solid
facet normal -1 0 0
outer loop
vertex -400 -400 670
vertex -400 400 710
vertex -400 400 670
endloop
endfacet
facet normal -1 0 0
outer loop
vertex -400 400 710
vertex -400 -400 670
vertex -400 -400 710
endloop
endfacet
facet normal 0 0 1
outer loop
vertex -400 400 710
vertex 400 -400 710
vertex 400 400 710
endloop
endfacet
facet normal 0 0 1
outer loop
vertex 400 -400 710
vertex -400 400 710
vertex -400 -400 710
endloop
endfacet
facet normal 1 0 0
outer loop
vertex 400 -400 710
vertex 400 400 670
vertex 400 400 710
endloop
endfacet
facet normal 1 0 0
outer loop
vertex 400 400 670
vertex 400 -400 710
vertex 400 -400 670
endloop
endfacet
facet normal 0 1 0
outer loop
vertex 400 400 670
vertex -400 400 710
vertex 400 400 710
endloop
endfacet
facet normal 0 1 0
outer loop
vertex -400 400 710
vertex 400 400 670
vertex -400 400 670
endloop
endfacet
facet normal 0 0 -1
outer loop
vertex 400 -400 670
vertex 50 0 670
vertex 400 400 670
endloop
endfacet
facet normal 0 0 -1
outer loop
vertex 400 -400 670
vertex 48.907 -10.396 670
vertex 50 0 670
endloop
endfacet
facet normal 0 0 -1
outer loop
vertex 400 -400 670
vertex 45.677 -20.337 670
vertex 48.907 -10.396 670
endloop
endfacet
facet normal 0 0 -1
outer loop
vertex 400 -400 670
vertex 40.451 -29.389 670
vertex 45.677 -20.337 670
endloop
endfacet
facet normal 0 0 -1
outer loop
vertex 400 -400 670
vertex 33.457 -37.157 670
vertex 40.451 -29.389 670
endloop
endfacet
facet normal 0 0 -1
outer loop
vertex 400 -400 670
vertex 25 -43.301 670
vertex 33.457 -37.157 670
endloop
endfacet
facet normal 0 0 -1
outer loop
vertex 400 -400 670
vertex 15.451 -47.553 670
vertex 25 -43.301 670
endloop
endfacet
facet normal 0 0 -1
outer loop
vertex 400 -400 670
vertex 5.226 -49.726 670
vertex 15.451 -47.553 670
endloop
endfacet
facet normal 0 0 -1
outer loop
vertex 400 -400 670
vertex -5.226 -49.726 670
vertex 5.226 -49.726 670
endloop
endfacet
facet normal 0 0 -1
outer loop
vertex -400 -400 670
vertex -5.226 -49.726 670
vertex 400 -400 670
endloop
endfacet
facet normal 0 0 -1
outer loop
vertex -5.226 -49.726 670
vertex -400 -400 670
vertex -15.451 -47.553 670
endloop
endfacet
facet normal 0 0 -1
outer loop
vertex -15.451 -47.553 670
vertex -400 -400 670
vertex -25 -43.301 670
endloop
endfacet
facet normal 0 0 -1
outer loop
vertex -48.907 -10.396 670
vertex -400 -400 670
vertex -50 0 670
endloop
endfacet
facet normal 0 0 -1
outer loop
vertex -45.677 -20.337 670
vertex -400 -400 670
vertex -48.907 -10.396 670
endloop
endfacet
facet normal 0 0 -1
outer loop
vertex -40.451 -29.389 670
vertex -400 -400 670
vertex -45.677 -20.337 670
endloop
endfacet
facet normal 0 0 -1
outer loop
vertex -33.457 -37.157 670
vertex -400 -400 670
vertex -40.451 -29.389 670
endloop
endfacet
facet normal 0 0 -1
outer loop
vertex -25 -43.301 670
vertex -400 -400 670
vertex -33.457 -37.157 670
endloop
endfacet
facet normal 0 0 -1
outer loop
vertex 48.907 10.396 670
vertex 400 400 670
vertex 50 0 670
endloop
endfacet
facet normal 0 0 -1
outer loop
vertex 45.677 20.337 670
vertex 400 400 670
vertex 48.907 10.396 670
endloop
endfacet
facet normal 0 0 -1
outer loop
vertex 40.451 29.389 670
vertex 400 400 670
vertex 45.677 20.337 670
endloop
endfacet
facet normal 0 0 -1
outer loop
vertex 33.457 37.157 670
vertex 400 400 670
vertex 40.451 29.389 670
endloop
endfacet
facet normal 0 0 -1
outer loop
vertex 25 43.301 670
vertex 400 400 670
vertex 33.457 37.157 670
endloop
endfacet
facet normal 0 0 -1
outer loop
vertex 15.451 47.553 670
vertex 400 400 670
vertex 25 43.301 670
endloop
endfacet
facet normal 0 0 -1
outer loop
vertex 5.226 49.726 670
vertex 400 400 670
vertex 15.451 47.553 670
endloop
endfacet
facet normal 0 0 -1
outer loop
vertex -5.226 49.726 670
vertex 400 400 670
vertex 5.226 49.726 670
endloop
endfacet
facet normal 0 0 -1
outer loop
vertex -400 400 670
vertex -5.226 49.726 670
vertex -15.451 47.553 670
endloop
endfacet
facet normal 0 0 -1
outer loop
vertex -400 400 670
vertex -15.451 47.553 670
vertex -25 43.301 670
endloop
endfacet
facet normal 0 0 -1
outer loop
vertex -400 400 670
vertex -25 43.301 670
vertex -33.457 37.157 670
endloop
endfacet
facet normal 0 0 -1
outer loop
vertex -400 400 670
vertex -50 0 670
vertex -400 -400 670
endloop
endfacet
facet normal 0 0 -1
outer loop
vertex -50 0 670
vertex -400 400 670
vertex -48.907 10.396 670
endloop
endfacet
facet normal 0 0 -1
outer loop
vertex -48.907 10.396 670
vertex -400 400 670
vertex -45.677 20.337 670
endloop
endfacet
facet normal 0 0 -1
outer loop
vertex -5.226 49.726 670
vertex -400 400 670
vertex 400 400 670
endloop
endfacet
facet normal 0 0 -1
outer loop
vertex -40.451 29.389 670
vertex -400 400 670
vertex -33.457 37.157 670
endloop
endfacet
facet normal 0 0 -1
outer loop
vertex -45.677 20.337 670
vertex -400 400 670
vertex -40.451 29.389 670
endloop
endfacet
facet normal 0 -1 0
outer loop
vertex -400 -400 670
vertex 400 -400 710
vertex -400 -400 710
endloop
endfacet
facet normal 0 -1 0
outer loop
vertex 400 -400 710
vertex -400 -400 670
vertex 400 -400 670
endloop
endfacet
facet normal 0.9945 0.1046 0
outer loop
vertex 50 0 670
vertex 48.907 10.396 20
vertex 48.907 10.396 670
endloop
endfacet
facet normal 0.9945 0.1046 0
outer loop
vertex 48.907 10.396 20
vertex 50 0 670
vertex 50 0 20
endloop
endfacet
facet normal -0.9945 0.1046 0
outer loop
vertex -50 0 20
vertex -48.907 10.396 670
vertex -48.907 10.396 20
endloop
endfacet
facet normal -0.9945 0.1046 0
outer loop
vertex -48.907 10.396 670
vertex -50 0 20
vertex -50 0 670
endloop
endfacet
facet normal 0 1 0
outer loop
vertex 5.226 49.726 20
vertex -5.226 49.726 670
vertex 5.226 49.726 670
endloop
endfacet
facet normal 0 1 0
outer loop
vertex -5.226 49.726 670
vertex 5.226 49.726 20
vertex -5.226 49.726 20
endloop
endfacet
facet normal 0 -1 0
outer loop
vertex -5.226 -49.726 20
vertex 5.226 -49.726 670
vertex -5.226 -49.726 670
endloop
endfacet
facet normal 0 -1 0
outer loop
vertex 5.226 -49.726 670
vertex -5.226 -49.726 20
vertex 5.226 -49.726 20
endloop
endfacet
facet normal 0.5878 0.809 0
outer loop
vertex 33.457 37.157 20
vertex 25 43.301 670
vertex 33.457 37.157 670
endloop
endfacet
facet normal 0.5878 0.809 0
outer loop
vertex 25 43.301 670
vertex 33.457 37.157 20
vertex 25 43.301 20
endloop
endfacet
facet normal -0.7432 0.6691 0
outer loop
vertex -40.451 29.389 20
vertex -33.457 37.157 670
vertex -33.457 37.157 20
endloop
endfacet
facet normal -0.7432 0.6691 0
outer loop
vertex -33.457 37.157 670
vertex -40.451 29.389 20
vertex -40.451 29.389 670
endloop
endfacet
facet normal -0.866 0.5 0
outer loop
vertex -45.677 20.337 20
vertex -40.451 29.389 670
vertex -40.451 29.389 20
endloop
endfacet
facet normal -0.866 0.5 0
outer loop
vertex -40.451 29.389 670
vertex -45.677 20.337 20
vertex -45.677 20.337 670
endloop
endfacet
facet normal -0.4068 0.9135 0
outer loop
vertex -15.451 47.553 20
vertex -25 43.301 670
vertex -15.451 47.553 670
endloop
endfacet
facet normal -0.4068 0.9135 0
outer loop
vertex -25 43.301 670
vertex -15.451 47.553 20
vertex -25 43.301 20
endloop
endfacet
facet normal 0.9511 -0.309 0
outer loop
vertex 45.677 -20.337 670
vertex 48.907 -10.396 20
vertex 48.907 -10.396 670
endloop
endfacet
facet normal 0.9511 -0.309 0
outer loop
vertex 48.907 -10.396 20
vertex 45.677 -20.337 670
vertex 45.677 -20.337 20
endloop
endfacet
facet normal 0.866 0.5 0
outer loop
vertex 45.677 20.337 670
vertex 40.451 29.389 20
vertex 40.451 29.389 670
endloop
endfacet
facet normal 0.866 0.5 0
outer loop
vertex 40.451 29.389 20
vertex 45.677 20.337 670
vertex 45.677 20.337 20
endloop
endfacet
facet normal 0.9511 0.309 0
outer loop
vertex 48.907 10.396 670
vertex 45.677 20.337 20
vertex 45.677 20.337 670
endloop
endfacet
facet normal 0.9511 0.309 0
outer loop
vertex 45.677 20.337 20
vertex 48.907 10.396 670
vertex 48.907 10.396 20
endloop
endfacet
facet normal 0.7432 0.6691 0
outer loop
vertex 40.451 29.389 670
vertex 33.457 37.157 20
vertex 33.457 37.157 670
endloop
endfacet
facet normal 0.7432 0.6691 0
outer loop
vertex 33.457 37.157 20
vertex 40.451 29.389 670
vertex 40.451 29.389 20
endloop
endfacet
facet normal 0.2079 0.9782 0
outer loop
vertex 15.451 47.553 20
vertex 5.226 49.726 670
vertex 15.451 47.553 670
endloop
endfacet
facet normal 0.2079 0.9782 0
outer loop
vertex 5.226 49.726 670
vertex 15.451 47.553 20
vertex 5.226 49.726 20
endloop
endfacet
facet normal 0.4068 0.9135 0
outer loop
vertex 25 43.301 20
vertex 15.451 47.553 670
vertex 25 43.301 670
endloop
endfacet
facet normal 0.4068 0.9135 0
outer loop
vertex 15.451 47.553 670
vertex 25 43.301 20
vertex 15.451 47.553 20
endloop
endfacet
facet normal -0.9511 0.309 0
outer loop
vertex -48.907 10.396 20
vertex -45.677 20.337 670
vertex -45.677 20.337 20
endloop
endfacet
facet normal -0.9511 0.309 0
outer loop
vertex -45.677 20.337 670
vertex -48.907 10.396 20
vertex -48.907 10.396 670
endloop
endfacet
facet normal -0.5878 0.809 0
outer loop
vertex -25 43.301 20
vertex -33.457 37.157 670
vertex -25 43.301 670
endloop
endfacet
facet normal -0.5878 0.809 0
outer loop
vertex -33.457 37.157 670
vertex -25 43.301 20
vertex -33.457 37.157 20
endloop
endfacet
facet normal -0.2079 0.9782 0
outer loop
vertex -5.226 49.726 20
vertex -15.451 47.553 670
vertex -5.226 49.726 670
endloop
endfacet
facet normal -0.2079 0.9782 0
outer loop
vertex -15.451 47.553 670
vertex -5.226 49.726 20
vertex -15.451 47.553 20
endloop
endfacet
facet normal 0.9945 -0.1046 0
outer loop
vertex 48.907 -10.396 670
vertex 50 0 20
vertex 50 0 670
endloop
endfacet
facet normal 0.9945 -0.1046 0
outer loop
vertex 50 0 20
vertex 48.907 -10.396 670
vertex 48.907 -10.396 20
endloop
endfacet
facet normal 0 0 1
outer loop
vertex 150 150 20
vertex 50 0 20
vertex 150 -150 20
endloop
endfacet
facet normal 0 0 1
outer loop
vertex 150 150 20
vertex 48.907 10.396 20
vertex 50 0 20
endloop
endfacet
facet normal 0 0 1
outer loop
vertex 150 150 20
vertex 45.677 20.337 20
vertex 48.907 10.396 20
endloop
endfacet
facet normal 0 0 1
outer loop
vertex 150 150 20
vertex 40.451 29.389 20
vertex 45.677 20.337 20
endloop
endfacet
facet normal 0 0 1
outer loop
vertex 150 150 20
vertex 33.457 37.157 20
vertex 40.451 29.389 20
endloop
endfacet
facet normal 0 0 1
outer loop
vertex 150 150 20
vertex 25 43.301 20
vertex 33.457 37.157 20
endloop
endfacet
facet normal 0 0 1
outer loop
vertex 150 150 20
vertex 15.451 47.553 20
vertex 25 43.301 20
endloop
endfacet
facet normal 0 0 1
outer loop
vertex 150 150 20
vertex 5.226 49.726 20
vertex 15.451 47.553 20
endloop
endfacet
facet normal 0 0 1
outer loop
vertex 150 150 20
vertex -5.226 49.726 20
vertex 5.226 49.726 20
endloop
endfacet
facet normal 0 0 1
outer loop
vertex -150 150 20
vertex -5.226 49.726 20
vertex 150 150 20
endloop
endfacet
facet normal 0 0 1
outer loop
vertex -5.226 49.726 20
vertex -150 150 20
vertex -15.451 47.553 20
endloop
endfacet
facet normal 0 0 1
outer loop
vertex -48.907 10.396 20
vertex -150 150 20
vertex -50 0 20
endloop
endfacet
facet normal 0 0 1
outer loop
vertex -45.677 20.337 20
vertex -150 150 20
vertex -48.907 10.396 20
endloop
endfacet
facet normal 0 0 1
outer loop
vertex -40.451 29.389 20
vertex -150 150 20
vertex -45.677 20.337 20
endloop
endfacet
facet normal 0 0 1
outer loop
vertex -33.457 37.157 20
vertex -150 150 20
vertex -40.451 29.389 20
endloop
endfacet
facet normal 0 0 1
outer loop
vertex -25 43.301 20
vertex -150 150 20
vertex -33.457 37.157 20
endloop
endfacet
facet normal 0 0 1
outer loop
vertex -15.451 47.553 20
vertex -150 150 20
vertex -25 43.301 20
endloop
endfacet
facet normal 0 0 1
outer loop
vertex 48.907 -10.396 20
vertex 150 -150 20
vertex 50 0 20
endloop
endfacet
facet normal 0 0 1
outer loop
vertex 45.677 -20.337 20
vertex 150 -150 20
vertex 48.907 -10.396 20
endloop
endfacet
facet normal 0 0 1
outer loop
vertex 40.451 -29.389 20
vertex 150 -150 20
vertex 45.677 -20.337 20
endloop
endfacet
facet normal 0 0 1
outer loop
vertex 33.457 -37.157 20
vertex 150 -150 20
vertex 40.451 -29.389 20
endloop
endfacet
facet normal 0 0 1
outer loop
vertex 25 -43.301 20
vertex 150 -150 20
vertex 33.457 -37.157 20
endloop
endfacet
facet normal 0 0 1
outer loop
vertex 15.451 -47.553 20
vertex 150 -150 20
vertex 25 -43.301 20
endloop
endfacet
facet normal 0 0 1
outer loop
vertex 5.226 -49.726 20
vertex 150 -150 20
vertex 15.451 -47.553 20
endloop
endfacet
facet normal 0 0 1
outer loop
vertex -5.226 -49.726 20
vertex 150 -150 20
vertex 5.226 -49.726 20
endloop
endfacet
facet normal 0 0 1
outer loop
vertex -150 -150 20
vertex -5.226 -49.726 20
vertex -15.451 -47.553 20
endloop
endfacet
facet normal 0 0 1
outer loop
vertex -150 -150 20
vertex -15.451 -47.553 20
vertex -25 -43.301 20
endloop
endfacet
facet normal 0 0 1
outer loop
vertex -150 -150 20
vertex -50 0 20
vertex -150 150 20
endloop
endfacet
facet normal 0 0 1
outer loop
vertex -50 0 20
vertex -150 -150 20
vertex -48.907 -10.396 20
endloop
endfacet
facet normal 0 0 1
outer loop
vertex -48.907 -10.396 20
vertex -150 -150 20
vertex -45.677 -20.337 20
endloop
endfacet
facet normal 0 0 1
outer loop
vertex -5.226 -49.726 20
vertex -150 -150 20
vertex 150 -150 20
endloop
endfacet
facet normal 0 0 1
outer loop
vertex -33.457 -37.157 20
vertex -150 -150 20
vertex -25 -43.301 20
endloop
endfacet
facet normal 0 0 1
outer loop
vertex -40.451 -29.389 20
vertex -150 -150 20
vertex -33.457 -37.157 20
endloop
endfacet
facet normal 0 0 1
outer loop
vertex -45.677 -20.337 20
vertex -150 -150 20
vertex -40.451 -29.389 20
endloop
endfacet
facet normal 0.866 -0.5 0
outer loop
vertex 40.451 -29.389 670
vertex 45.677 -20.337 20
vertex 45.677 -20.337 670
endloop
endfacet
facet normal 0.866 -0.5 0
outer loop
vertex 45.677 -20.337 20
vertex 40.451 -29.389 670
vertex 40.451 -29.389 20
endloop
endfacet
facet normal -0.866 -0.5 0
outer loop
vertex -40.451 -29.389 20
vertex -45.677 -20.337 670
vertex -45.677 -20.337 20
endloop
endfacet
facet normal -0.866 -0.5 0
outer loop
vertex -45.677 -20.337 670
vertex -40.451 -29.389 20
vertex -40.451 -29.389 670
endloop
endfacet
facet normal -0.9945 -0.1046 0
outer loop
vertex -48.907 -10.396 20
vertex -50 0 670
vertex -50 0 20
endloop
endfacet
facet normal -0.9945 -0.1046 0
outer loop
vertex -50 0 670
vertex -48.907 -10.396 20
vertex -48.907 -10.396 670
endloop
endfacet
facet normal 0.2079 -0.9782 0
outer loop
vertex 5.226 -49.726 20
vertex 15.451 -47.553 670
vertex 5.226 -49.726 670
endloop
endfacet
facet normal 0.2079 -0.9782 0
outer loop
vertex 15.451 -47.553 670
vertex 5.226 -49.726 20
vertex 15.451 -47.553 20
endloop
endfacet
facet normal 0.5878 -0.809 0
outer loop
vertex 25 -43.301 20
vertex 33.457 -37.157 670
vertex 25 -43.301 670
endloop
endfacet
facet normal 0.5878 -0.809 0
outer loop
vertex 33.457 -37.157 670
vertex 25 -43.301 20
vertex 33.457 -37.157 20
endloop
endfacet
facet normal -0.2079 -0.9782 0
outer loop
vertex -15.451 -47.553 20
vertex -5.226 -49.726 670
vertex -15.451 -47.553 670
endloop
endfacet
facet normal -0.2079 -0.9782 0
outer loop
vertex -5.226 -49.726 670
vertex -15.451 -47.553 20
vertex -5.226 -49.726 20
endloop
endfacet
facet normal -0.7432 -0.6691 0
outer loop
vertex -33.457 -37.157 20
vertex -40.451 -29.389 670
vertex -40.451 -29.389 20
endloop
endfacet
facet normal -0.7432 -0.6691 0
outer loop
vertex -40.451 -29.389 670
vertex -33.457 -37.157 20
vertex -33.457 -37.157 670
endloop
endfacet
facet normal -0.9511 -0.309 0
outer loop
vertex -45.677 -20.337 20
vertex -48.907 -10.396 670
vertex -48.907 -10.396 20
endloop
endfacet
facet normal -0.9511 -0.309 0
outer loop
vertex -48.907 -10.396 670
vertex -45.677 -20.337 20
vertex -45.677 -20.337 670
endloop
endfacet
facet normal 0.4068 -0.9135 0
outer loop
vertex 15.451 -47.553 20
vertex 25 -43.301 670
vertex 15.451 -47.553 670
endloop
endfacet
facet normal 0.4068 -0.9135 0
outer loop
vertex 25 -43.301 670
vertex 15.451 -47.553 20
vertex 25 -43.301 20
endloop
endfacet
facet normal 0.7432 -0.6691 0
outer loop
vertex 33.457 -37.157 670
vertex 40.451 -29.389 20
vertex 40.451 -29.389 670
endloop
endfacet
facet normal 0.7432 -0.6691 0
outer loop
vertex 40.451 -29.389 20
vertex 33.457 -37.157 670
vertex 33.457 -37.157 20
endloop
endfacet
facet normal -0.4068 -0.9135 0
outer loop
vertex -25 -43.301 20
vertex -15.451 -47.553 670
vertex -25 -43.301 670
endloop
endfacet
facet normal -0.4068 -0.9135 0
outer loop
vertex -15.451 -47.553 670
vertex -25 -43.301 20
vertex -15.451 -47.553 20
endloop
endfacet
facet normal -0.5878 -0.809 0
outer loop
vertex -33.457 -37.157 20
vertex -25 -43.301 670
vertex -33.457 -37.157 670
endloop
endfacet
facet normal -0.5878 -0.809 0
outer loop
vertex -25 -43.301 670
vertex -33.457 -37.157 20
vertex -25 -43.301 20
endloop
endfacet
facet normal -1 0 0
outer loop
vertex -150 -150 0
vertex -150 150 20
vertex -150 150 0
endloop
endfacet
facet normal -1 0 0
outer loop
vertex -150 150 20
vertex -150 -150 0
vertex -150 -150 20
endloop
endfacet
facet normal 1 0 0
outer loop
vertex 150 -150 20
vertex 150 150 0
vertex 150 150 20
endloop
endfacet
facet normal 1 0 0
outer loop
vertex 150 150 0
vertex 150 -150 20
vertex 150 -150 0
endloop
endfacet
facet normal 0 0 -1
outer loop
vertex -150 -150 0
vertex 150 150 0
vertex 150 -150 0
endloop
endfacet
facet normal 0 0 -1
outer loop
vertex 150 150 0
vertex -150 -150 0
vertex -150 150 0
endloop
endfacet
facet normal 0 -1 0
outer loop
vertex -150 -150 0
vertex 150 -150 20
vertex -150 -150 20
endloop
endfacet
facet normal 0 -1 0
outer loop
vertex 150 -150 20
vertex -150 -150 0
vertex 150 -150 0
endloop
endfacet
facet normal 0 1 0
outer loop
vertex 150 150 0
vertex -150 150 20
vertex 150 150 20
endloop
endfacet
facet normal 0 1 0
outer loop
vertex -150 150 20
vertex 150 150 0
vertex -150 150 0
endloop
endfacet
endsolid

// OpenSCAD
// Maße in mm
table_width = 800;
table_height = 730;
top_thickness = 40;

column_radius = 50;
column_height = table_height - top_thickness;

base_size = 300;      // Seitenlänge der quadratischen Bodenplatte
base_thickness = 20;  // Dicke der Bodenplatte

// Tischplatte (zentriert oben)
translate([0, 0, table_height - top_thickness])
    cube([table_width, table_width, top_thickness], center=true);

// Mittelsäule (zwischen Bodenplatte und Tischplatte)
translate([0, 0, base_thickness + column_height / 2])
    cylinder(h=column_height, r=column_radius, center=true);

// Bodenplatte (zentriert unten)
translate([0, 0, base_thickness / 2])
    cube([base_size, base_size, base_thickness], center=true);
